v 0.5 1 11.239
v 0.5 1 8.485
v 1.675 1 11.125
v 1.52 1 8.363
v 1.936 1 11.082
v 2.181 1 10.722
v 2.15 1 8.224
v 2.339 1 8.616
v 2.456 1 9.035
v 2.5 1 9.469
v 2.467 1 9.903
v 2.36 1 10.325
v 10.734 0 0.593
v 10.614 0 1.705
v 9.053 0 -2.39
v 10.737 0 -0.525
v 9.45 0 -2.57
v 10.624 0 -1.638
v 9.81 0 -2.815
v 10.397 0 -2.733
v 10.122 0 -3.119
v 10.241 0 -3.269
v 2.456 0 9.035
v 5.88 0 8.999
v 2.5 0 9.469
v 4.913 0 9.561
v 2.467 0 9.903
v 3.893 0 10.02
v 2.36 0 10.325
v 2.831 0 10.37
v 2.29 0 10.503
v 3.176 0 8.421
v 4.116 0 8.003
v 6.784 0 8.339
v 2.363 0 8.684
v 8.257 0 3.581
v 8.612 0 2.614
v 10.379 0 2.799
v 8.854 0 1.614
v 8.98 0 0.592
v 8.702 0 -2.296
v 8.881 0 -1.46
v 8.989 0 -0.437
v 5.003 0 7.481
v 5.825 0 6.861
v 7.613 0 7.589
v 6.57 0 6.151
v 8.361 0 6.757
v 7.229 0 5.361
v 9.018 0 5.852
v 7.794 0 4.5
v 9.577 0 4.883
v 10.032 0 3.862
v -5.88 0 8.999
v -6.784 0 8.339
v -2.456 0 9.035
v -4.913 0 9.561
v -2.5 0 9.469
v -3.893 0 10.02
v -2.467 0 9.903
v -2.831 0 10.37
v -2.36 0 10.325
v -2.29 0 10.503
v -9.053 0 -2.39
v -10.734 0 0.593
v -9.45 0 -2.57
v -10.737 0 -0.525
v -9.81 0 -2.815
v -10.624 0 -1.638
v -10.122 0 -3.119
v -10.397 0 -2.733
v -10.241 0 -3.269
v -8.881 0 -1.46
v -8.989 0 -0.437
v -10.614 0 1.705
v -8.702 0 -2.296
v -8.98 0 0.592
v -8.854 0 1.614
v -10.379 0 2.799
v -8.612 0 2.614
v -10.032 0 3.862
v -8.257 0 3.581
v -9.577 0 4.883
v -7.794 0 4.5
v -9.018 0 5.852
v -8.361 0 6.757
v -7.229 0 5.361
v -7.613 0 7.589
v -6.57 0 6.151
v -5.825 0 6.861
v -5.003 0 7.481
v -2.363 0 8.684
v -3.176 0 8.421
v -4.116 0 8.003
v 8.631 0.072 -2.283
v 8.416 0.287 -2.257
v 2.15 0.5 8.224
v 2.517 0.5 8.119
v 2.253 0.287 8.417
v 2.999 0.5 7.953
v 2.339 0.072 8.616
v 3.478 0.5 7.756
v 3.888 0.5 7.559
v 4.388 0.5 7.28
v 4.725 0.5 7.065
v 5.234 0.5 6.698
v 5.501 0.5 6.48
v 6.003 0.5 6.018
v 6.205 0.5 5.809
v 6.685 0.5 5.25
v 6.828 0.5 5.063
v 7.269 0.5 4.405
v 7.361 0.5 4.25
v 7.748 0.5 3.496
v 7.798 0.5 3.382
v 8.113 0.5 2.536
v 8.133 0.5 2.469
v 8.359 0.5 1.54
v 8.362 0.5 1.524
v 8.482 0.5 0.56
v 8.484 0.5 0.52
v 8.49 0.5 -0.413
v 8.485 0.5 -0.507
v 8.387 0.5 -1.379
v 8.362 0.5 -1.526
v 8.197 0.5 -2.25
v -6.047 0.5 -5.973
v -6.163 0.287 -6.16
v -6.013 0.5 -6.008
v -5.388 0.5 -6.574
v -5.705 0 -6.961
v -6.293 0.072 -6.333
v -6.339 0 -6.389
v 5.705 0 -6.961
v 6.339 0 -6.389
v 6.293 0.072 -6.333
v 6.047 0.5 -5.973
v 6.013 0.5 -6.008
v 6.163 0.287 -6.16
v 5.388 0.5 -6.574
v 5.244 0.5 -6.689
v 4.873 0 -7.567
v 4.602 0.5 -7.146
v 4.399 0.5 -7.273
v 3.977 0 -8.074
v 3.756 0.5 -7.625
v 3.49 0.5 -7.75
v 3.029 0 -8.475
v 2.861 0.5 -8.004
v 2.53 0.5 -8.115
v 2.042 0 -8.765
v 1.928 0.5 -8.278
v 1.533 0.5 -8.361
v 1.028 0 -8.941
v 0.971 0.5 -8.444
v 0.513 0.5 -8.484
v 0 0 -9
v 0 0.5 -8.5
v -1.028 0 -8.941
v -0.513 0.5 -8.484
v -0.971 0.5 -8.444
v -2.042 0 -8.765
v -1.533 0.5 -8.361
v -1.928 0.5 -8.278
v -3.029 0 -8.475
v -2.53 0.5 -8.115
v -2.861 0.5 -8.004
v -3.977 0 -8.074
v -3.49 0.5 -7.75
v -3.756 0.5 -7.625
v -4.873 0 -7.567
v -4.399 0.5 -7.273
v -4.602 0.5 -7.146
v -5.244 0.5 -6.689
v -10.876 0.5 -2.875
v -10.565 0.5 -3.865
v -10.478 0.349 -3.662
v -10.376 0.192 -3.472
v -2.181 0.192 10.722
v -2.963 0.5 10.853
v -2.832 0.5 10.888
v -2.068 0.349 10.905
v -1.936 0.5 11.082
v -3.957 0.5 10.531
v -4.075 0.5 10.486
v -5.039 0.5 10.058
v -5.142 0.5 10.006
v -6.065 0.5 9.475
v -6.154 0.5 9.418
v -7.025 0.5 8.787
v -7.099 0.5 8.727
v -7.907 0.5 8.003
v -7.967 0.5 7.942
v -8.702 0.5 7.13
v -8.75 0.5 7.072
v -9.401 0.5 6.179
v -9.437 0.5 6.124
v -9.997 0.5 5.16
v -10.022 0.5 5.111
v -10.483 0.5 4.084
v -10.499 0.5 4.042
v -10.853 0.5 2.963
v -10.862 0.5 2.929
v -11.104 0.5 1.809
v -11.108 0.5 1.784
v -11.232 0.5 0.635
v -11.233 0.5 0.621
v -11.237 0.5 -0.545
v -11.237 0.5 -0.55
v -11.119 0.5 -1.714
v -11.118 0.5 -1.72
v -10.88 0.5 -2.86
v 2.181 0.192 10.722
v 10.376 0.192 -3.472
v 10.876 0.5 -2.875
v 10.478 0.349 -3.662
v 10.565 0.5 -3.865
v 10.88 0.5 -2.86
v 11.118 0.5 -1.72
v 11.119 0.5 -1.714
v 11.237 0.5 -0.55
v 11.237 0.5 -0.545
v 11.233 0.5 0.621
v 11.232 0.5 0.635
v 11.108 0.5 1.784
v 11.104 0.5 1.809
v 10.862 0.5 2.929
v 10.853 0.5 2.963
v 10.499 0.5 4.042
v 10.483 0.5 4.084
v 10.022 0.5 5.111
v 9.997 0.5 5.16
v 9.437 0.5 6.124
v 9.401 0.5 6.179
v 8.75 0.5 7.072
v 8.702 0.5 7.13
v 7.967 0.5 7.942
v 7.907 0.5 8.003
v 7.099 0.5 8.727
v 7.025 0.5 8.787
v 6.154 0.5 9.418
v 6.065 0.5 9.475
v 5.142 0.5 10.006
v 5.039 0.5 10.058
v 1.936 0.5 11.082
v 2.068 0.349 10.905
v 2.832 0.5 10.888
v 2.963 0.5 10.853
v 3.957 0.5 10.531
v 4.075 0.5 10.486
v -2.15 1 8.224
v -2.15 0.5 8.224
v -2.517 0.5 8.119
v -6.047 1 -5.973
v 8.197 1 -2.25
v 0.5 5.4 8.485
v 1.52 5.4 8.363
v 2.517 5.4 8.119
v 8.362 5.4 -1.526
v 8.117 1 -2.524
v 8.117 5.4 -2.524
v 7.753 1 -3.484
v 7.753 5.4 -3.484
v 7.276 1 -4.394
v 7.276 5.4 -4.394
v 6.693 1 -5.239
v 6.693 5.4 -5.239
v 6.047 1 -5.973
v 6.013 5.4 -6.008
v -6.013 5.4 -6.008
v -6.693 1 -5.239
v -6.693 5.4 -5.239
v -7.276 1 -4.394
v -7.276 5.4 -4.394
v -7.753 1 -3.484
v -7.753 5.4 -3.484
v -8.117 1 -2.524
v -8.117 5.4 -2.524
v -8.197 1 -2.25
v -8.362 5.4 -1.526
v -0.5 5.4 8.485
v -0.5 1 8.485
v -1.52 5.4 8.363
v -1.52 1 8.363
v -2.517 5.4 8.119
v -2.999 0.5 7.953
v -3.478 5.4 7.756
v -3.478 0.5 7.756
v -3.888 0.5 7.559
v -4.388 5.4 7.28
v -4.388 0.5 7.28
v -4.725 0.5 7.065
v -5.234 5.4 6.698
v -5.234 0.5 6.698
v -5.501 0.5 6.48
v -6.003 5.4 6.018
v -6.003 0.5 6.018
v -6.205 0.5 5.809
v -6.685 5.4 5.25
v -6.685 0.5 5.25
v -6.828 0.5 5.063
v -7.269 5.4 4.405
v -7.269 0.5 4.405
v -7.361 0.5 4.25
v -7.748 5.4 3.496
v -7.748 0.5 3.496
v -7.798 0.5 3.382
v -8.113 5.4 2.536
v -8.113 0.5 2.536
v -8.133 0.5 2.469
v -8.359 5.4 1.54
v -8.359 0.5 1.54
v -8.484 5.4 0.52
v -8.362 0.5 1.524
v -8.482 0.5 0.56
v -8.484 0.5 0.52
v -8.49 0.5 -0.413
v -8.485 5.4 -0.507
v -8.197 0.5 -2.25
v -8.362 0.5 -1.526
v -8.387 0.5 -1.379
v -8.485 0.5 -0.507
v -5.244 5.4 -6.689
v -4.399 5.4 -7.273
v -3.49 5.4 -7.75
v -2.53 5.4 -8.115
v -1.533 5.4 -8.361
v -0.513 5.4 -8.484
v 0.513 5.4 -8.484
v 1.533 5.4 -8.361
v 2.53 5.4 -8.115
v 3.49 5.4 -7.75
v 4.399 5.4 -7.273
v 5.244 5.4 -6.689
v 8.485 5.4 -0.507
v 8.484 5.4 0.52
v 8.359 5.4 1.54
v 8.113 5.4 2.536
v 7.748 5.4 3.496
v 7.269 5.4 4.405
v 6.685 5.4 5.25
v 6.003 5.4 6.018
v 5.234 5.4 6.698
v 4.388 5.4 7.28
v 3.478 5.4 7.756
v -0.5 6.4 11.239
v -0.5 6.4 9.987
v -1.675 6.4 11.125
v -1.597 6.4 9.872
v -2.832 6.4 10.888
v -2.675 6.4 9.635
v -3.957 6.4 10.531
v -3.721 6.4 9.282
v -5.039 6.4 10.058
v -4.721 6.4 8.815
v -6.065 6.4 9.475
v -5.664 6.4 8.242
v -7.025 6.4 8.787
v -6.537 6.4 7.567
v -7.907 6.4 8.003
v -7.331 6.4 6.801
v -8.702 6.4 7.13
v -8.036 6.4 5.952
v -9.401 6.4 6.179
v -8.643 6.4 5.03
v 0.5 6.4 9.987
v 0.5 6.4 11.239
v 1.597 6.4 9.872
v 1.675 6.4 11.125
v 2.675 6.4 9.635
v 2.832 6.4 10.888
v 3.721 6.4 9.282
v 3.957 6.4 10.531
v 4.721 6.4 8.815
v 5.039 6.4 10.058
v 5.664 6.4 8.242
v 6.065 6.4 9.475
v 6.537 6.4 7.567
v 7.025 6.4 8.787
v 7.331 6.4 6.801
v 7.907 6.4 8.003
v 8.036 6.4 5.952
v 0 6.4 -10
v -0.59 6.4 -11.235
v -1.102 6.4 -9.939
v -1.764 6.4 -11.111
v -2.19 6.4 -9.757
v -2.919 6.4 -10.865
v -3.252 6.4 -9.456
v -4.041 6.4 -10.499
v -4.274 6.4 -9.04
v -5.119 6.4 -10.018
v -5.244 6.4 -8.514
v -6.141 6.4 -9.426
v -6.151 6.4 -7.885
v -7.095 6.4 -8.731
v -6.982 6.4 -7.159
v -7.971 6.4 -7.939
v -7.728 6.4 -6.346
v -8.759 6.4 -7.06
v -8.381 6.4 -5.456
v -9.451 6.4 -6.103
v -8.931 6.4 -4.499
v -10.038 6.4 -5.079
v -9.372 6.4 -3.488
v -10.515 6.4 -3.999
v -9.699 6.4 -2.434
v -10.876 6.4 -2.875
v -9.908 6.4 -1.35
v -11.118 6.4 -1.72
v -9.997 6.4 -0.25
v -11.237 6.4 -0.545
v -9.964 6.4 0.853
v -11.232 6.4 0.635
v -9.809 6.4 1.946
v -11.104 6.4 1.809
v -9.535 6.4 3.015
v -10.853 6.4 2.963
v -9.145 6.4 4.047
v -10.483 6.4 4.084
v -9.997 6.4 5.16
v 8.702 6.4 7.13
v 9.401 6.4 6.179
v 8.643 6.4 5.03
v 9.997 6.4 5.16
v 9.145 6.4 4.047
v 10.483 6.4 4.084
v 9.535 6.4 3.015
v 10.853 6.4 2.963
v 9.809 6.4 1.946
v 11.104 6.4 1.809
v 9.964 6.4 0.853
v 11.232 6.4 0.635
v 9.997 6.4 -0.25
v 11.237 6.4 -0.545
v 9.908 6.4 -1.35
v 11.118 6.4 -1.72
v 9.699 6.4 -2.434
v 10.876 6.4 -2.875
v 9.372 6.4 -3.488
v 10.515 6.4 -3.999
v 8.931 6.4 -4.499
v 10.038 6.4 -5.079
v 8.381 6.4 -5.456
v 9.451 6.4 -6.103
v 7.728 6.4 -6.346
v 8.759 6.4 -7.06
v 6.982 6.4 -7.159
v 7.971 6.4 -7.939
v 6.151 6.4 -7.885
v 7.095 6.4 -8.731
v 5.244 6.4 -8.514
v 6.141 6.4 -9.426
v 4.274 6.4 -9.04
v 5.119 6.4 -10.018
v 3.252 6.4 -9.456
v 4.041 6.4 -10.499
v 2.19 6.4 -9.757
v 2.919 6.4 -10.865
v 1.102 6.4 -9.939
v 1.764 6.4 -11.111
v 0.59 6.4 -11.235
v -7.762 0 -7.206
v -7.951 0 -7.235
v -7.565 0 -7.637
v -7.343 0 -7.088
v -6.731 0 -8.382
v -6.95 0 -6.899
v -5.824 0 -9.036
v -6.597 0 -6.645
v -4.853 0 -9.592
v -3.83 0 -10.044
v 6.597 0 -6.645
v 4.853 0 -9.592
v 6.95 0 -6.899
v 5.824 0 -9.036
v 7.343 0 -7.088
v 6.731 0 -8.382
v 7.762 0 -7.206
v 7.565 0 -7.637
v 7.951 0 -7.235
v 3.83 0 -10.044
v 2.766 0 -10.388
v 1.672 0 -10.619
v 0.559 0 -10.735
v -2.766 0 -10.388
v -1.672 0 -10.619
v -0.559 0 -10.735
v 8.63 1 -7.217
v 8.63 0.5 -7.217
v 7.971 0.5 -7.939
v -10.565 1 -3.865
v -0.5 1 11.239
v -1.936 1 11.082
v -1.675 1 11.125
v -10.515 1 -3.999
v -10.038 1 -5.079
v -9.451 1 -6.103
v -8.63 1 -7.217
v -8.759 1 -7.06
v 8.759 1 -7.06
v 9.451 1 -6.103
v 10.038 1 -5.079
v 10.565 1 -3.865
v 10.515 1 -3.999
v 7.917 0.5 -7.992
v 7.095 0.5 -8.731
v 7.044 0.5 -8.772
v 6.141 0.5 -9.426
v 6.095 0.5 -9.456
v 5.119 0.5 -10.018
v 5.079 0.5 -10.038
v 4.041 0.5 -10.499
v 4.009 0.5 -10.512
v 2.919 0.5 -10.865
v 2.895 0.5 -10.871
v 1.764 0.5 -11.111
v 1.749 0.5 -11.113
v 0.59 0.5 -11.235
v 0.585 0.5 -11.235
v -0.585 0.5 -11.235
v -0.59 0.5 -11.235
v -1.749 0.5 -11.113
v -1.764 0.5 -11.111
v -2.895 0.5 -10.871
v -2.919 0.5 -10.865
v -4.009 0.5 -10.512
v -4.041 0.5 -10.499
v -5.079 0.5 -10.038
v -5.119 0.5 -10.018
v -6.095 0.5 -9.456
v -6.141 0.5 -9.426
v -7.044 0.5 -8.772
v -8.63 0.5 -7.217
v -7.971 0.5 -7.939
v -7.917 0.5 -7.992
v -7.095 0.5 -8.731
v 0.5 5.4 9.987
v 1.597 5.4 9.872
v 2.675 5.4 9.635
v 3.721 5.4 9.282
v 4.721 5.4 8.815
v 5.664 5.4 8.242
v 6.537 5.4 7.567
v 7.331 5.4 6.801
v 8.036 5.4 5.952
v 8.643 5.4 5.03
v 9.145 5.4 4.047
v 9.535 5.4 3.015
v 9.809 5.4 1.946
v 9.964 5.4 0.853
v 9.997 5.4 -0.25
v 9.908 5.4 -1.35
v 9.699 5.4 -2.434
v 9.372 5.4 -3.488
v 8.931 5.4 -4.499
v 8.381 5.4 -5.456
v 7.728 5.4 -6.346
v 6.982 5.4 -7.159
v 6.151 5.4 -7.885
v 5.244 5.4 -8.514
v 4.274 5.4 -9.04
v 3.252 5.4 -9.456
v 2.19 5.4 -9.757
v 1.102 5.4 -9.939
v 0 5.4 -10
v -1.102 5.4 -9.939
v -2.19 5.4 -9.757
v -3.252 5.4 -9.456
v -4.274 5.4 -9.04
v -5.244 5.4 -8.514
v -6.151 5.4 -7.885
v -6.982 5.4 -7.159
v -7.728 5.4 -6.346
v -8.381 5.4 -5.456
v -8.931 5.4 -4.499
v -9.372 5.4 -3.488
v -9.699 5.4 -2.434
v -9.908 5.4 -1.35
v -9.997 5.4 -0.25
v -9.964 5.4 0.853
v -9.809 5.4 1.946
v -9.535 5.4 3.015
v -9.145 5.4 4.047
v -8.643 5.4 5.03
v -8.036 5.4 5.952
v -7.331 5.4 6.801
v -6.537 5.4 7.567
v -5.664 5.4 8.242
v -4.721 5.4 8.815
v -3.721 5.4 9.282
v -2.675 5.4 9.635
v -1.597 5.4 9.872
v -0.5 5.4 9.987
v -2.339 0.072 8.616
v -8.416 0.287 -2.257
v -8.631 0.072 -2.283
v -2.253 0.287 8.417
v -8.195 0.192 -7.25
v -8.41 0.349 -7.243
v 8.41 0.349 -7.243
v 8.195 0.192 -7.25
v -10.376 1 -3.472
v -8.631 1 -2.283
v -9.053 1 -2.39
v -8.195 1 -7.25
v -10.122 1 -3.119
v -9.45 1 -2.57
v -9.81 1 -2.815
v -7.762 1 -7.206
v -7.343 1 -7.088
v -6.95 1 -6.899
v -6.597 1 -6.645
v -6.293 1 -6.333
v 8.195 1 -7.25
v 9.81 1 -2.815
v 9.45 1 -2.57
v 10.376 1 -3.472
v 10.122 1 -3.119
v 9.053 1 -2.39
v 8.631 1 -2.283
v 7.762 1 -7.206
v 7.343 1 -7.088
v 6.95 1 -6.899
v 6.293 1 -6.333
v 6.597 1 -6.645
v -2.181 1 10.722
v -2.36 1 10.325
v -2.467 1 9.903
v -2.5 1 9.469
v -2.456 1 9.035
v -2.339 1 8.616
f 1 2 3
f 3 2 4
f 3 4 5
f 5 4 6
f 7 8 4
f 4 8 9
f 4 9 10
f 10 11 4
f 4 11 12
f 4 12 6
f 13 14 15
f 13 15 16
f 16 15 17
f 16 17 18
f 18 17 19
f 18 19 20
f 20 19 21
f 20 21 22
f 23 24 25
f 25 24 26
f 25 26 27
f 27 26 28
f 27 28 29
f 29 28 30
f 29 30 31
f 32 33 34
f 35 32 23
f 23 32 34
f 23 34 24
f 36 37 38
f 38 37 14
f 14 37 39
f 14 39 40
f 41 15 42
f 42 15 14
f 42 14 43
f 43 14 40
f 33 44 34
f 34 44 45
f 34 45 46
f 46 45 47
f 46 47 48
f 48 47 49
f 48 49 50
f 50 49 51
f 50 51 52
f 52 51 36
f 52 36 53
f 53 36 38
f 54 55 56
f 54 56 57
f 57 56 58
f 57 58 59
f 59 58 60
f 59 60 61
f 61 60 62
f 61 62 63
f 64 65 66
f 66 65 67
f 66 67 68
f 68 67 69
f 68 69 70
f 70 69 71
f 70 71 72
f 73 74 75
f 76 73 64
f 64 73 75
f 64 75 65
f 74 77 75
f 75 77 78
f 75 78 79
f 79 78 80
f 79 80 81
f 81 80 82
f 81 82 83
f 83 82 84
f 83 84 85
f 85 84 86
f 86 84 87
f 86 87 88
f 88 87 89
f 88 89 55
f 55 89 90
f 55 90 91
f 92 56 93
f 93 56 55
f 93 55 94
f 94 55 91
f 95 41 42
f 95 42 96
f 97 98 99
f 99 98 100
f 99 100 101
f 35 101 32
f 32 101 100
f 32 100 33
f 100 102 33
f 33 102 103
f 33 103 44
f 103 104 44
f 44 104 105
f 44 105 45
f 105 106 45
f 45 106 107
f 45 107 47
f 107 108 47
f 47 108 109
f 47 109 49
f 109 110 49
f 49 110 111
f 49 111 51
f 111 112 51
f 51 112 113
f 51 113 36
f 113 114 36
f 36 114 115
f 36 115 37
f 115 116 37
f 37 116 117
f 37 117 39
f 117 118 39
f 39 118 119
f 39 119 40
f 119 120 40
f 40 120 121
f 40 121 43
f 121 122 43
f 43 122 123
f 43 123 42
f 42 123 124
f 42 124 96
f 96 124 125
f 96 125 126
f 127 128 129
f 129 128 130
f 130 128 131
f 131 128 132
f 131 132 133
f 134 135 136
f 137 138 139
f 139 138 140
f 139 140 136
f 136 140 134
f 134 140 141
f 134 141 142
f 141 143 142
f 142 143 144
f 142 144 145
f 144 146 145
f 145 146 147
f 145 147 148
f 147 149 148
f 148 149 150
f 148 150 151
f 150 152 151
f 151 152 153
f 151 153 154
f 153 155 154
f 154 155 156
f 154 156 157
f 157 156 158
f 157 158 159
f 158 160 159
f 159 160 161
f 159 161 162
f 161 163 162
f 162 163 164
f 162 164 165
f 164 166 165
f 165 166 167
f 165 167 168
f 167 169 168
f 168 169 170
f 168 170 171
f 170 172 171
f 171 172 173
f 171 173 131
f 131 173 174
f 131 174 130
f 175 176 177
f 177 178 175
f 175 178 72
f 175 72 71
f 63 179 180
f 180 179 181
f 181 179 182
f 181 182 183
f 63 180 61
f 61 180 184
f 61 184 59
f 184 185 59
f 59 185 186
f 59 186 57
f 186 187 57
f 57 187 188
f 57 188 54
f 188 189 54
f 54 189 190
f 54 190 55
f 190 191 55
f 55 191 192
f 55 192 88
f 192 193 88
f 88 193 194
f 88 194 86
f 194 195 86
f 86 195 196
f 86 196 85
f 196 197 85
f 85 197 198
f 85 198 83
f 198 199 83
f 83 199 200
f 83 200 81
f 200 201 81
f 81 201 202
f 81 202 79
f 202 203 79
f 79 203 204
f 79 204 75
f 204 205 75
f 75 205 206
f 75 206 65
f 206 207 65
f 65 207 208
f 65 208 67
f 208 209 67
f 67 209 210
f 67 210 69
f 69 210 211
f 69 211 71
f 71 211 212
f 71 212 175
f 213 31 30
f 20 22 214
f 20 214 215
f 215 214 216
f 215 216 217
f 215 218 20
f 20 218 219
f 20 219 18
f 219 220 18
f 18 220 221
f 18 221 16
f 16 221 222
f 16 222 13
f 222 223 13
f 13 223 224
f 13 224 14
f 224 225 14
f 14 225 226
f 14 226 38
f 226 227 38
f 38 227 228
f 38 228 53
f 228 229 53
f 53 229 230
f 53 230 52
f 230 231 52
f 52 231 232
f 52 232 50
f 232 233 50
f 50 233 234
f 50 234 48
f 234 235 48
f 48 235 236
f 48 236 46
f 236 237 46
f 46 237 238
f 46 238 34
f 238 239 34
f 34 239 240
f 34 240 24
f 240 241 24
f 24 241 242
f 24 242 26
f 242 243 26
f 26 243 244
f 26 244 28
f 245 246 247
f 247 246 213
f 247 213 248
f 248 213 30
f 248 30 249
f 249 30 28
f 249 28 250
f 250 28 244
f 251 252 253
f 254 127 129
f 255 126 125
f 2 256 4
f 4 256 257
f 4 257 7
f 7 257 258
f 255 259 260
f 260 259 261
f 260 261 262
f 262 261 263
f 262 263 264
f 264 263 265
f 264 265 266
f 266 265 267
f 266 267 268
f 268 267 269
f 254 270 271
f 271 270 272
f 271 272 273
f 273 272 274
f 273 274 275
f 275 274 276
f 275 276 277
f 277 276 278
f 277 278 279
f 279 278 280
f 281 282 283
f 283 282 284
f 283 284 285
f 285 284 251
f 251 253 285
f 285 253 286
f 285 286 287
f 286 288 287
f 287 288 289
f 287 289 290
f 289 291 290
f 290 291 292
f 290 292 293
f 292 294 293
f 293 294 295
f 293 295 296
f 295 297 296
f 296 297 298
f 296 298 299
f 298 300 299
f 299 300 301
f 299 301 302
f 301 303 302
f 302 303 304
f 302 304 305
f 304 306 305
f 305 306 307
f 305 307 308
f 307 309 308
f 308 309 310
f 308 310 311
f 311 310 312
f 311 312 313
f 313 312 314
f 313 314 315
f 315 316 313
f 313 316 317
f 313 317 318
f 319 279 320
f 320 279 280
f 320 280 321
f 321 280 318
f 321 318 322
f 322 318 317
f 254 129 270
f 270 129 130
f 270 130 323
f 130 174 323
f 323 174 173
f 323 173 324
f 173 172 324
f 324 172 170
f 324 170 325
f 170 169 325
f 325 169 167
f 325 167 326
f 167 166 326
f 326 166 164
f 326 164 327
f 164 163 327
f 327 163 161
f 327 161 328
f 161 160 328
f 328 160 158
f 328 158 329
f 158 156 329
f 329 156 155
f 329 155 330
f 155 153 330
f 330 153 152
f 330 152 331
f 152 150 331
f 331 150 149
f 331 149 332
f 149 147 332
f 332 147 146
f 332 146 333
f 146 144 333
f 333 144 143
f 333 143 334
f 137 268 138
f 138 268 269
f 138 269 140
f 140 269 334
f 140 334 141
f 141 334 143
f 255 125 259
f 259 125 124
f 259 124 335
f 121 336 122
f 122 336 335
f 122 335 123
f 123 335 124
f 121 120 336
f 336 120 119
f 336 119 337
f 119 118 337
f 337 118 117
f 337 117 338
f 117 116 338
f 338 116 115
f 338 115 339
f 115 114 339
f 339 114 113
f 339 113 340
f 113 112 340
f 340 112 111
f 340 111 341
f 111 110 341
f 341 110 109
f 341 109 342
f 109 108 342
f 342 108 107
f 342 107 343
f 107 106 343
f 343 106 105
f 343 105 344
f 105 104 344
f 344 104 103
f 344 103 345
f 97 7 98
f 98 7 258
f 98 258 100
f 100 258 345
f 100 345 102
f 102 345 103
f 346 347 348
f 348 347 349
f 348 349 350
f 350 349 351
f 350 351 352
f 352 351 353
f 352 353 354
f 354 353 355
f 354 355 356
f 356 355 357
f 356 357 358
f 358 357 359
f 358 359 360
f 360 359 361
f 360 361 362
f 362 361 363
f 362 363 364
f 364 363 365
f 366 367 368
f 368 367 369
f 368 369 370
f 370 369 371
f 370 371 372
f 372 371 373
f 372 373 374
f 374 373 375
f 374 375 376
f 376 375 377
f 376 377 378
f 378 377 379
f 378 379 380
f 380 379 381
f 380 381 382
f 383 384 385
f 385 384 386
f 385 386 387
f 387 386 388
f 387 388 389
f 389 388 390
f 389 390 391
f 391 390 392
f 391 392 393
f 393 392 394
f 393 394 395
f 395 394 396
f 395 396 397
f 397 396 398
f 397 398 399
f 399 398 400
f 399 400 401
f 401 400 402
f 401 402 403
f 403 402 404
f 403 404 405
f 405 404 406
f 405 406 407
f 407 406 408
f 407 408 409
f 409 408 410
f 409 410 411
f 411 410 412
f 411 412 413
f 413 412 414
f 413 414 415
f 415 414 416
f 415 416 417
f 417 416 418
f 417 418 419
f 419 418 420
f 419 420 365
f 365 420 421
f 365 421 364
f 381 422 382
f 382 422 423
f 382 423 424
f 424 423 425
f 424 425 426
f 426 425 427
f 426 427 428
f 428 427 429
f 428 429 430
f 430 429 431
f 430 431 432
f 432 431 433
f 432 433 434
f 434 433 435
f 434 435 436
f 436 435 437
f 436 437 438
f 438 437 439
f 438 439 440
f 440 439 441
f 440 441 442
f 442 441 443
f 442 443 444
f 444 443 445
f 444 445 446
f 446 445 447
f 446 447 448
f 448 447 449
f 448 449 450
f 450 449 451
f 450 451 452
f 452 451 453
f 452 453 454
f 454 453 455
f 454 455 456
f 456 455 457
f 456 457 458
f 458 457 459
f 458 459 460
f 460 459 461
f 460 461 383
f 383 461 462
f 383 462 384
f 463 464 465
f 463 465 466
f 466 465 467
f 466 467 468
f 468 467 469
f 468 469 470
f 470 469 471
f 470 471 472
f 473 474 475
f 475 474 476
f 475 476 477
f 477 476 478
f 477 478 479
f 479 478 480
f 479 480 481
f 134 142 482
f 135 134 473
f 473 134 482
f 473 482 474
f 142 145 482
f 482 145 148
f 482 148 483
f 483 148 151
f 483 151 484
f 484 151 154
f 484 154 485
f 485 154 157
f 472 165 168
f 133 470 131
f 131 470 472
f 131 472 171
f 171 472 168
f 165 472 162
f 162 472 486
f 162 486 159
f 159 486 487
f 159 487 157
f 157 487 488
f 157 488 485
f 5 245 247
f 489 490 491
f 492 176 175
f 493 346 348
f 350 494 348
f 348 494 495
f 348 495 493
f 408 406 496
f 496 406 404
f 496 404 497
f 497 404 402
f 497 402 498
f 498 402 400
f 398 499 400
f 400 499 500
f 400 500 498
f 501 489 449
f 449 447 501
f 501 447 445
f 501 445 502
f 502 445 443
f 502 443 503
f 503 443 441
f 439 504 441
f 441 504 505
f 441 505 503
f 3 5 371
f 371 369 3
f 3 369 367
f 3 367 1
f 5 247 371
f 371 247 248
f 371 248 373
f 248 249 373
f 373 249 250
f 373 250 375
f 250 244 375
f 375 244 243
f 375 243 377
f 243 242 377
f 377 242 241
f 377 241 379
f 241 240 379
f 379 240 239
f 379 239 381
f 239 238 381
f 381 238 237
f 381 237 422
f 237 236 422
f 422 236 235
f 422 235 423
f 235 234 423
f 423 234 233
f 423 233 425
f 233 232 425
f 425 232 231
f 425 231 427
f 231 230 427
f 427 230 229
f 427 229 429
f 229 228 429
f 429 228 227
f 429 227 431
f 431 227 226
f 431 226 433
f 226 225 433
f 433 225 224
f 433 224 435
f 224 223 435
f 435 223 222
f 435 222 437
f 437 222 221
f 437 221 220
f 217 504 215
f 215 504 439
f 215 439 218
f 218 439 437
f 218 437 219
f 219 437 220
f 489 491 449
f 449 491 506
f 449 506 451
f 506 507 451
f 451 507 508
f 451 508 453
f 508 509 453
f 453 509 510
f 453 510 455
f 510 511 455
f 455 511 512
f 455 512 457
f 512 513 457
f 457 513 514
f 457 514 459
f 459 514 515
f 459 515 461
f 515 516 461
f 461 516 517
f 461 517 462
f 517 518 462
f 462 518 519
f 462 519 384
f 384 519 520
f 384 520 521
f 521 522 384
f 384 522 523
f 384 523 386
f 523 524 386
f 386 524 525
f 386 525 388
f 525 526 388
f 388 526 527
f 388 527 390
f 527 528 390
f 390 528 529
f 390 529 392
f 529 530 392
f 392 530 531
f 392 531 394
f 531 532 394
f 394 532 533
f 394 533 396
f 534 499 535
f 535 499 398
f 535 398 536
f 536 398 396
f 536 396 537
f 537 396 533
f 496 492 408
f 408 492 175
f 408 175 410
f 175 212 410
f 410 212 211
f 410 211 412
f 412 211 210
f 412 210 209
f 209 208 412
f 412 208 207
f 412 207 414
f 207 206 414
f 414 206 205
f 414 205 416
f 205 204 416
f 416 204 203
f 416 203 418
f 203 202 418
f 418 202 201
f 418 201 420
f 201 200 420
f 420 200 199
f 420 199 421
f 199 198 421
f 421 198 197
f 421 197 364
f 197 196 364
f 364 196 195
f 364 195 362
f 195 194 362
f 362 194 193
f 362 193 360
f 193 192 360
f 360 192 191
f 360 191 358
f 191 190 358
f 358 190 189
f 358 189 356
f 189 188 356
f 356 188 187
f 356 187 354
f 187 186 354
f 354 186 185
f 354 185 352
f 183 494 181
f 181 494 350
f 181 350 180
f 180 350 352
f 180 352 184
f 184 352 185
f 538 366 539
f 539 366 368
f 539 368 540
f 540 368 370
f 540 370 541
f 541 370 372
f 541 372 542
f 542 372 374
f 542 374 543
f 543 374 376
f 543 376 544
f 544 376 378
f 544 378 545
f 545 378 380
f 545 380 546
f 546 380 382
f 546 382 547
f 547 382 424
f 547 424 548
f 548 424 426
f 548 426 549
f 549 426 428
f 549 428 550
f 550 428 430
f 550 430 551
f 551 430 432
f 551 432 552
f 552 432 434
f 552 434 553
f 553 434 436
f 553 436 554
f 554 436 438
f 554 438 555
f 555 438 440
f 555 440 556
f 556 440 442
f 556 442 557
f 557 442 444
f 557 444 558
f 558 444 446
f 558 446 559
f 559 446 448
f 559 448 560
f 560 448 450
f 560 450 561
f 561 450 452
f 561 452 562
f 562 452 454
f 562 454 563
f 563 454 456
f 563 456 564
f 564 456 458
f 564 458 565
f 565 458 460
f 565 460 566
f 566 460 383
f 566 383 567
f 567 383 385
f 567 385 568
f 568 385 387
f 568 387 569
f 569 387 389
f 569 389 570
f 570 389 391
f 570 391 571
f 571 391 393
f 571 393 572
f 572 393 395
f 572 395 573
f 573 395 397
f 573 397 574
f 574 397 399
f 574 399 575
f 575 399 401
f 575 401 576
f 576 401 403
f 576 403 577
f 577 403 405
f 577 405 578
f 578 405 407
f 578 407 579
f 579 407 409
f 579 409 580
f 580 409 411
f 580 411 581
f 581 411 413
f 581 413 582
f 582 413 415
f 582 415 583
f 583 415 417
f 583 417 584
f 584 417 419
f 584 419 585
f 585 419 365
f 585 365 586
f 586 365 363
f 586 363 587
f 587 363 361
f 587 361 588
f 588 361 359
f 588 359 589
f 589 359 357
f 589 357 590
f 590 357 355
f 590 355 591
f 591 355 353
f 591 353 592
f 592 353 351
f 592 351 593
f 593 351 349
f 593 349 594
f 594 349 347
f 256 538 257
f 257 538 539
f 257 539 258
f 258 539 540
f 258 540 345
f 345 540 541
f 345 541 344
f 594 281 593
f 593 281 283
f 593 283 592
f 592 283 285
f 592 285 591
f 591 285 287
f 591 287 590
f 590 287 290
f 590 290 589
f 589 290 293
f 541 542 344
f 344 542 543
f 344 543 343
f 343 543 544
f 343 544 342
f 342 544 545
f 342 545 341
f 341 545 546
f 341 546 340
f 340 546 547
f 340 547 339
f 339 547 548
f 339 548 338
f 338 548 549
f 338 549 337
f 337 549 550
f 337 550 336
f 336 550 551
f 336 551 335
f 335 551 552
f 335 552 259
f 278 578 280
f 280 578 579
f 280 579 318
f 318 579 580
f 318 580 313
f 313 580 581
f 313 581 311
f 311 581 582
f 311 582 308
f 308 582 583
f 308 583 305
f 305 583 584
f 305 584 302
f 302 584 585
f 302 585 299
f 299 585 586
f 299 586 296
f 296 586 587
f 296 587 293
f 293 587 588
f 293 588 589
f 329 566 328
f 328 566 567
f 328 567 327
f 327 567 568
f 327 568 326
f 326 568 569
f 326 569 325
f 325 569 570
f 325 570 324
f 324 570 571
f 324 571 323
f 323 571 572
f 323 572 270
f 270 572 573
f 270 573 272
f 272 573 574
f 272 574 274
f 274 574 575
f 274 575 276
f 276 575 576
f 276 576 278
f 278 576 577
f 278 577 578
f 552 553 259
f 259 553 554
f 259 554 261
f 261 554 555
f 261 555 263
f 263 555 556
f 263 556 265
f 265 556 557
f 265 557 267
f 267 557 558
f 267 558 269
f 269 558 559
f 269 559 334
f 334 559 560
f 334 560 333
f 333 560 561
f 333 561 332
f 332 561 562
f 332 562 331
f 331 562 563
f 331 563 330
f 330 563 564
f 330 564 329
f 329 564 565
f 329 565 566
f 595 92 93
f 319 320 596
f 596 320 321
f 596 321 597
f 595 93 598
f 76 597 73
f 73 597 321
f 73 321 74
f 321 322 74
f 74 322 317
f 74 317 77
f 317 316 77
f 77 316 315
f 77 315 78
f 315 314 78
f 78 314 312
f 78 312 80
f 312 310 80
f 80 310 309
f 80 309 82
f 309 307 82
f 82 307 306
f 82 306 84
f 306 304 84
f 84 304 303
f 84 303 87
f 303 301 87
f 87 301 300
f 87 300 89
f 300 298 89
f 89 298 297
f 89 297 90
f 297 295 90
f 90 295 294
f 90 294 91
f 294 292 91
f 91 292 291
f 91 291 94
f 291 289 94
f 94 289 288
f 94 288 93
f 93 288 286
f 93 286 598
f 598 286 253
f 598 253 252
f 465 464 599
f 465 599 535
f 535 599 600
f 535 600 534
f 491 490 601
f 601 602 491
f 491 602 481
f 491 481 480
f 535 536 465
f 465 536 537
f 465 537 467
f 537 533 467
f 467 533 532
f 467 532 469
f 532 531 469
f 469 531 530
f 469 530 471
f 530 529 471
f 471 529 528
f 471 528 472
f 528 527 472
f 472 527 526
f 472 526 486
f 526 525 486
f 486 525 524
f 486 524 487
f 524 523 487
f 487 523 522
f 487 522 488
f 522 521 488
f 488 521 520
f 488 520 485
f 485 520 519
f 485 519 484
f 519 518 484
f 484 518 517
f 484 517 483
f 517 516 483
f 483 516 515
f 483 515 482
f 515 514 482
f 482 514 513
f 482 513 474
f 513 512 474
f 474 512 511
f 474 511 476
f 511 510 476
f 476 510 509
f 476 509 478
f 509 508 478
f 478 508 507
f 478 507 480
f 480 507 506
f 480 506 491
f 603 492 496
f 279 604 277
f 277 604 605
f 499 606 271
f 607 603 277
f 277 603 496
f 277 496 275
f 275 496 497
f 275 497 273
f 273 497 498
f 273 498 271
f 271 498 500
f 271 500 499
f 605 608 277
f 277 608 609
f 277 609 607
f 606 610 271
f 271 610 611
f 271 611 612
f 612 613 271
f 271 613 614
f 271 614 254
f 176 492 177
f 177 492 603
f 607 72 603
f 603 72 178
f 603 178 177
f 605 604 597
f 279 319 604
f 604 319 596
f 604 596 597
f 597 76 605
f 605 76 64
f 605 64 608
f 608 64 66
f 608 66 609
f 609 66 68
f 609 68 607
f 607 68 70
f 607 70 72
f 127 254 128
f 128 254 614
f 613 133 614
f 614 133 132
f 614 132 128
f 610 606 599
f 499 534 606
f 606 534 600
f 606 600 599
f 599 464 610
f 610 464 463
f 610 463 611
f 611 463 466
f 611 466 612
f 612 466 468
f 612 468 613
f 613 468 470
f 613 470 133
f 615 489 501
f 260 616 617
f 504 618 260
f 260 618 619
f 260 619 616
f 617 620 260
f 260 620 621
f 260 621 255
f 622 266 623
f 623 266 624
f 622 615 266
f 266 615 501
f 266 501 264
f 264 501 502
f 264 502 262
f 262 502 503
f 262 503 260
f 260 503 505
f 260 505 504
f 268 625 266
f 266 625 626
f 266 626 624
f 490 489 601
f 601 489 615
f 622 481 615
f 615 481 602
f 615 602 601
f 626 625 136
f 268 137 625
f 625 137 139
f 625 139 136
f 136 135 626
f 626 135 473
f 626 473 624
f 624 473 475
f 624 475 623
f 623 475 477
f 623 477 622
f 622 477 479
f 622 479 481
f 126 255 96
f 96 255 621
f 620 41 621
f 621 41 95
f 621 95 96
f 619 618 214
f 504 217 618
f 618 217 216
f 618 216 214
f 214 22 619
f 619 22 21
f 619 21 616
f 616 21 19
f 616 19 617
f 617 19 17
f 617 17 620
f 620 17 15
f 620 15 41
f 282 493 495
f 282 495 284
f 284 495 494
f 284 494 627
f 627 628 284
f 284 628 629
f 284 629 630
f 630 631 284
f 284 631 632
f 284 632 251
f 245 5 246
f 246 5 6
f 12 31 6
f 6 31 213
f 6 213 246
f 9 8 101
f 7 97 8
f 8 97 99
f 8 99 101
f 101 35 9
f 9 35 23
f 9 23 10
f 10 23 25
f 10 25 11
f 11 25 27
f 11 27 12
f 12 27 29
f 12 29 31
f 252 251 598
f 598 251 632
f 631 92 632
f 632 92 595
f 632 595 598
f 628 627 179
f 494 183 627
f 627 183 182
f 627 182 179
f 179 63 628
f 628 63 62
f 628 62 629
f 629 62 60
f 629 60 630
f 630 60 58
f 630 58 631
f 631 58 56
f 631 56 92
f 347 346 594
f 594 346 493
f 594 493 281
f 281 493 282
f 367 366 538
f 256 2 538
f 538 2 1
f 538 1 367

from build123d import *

# Parameters (mm, degrees)
SKETCH1_R           = 11.25
SKETCH1_R_2         = 8.5
BOSS_EXTRUDE1_DEPTH = 6.4
SKETCH2_R           = 10
CUT_EXTRUDE1_DEPTH  = 1
CHAMFER1_SIZE       = 0.5
SKETCH3_R           = 2.5
CUT_EXTRUDE2_DEPTH  = 1
SKETCH4_W           = 1
SKETCH4_H           = 7.023795273
CUT_EXTRUDE3_DEPTH  = 10


with BuildPart() as part:
    # Sketch1 → Boss-Extrude1 (new body)
    with BuildSketch(Plane(origin=(0, 0, 0), x_dir=(1, 0, 0), z_dir=(0, 1, 0))):
        Circle(SKETCH1_R)
        Circle(SKETCH1_R_2, mode=Mode.SUBTRACT)
    extrude(amount=BOSS_EXTRUDE1_DEPTH)

    # Sketch2 → Cut-Extrude1 (cut)
    with BuildSketch(Plane(origin=(0, 6.4, 0), x_dir=(1, 0, 0), z_dir=(0, 1, 0))):
        Circle(SKETCH2_R)
    extrude(amount=-CUT_EXTRUDE1_DEPTH, mode=Mode.SUBTRACT)

    # Chamfer1
    chamfer1_edges = [part.edges().sort_by_distance(p)[0] for p in [
        (-8.5, 0, 0),
        (-11.25, 0, 0),
    ]]
    chamfer(chamfer1_edges, length=CHAMFER1_SIZE)

    # Sketch3 → Cut-Extrude2 (cut)
    with BuildSketch(Plane.XZ):
        with Locations((0, 9.5)):
            Circle(SKETCH3_R)
        with Locations((8.227241336, -4.75)):
            Circle(SKETCH3_R)
        with Locations((-8.227241336, -4.75)):
            Circle(SKETCH3_R)
    extrude(amount=-CUT_EXTRUDE2_DEPTH, mode=Mode.SUBTRACT)

    # Sketch4 → Cut-Extrude3 (cut)
    with BuildSketch(Plane.XZ):
        with Locations((0, 9.698212769)):
            Rectangle(SKETCH4_W, SKETCH4_H)
    extrude(amount=-CUT_EXTRUDE3_DEPTH, mode=Mode.SUBTRACT)


solid = part.part
